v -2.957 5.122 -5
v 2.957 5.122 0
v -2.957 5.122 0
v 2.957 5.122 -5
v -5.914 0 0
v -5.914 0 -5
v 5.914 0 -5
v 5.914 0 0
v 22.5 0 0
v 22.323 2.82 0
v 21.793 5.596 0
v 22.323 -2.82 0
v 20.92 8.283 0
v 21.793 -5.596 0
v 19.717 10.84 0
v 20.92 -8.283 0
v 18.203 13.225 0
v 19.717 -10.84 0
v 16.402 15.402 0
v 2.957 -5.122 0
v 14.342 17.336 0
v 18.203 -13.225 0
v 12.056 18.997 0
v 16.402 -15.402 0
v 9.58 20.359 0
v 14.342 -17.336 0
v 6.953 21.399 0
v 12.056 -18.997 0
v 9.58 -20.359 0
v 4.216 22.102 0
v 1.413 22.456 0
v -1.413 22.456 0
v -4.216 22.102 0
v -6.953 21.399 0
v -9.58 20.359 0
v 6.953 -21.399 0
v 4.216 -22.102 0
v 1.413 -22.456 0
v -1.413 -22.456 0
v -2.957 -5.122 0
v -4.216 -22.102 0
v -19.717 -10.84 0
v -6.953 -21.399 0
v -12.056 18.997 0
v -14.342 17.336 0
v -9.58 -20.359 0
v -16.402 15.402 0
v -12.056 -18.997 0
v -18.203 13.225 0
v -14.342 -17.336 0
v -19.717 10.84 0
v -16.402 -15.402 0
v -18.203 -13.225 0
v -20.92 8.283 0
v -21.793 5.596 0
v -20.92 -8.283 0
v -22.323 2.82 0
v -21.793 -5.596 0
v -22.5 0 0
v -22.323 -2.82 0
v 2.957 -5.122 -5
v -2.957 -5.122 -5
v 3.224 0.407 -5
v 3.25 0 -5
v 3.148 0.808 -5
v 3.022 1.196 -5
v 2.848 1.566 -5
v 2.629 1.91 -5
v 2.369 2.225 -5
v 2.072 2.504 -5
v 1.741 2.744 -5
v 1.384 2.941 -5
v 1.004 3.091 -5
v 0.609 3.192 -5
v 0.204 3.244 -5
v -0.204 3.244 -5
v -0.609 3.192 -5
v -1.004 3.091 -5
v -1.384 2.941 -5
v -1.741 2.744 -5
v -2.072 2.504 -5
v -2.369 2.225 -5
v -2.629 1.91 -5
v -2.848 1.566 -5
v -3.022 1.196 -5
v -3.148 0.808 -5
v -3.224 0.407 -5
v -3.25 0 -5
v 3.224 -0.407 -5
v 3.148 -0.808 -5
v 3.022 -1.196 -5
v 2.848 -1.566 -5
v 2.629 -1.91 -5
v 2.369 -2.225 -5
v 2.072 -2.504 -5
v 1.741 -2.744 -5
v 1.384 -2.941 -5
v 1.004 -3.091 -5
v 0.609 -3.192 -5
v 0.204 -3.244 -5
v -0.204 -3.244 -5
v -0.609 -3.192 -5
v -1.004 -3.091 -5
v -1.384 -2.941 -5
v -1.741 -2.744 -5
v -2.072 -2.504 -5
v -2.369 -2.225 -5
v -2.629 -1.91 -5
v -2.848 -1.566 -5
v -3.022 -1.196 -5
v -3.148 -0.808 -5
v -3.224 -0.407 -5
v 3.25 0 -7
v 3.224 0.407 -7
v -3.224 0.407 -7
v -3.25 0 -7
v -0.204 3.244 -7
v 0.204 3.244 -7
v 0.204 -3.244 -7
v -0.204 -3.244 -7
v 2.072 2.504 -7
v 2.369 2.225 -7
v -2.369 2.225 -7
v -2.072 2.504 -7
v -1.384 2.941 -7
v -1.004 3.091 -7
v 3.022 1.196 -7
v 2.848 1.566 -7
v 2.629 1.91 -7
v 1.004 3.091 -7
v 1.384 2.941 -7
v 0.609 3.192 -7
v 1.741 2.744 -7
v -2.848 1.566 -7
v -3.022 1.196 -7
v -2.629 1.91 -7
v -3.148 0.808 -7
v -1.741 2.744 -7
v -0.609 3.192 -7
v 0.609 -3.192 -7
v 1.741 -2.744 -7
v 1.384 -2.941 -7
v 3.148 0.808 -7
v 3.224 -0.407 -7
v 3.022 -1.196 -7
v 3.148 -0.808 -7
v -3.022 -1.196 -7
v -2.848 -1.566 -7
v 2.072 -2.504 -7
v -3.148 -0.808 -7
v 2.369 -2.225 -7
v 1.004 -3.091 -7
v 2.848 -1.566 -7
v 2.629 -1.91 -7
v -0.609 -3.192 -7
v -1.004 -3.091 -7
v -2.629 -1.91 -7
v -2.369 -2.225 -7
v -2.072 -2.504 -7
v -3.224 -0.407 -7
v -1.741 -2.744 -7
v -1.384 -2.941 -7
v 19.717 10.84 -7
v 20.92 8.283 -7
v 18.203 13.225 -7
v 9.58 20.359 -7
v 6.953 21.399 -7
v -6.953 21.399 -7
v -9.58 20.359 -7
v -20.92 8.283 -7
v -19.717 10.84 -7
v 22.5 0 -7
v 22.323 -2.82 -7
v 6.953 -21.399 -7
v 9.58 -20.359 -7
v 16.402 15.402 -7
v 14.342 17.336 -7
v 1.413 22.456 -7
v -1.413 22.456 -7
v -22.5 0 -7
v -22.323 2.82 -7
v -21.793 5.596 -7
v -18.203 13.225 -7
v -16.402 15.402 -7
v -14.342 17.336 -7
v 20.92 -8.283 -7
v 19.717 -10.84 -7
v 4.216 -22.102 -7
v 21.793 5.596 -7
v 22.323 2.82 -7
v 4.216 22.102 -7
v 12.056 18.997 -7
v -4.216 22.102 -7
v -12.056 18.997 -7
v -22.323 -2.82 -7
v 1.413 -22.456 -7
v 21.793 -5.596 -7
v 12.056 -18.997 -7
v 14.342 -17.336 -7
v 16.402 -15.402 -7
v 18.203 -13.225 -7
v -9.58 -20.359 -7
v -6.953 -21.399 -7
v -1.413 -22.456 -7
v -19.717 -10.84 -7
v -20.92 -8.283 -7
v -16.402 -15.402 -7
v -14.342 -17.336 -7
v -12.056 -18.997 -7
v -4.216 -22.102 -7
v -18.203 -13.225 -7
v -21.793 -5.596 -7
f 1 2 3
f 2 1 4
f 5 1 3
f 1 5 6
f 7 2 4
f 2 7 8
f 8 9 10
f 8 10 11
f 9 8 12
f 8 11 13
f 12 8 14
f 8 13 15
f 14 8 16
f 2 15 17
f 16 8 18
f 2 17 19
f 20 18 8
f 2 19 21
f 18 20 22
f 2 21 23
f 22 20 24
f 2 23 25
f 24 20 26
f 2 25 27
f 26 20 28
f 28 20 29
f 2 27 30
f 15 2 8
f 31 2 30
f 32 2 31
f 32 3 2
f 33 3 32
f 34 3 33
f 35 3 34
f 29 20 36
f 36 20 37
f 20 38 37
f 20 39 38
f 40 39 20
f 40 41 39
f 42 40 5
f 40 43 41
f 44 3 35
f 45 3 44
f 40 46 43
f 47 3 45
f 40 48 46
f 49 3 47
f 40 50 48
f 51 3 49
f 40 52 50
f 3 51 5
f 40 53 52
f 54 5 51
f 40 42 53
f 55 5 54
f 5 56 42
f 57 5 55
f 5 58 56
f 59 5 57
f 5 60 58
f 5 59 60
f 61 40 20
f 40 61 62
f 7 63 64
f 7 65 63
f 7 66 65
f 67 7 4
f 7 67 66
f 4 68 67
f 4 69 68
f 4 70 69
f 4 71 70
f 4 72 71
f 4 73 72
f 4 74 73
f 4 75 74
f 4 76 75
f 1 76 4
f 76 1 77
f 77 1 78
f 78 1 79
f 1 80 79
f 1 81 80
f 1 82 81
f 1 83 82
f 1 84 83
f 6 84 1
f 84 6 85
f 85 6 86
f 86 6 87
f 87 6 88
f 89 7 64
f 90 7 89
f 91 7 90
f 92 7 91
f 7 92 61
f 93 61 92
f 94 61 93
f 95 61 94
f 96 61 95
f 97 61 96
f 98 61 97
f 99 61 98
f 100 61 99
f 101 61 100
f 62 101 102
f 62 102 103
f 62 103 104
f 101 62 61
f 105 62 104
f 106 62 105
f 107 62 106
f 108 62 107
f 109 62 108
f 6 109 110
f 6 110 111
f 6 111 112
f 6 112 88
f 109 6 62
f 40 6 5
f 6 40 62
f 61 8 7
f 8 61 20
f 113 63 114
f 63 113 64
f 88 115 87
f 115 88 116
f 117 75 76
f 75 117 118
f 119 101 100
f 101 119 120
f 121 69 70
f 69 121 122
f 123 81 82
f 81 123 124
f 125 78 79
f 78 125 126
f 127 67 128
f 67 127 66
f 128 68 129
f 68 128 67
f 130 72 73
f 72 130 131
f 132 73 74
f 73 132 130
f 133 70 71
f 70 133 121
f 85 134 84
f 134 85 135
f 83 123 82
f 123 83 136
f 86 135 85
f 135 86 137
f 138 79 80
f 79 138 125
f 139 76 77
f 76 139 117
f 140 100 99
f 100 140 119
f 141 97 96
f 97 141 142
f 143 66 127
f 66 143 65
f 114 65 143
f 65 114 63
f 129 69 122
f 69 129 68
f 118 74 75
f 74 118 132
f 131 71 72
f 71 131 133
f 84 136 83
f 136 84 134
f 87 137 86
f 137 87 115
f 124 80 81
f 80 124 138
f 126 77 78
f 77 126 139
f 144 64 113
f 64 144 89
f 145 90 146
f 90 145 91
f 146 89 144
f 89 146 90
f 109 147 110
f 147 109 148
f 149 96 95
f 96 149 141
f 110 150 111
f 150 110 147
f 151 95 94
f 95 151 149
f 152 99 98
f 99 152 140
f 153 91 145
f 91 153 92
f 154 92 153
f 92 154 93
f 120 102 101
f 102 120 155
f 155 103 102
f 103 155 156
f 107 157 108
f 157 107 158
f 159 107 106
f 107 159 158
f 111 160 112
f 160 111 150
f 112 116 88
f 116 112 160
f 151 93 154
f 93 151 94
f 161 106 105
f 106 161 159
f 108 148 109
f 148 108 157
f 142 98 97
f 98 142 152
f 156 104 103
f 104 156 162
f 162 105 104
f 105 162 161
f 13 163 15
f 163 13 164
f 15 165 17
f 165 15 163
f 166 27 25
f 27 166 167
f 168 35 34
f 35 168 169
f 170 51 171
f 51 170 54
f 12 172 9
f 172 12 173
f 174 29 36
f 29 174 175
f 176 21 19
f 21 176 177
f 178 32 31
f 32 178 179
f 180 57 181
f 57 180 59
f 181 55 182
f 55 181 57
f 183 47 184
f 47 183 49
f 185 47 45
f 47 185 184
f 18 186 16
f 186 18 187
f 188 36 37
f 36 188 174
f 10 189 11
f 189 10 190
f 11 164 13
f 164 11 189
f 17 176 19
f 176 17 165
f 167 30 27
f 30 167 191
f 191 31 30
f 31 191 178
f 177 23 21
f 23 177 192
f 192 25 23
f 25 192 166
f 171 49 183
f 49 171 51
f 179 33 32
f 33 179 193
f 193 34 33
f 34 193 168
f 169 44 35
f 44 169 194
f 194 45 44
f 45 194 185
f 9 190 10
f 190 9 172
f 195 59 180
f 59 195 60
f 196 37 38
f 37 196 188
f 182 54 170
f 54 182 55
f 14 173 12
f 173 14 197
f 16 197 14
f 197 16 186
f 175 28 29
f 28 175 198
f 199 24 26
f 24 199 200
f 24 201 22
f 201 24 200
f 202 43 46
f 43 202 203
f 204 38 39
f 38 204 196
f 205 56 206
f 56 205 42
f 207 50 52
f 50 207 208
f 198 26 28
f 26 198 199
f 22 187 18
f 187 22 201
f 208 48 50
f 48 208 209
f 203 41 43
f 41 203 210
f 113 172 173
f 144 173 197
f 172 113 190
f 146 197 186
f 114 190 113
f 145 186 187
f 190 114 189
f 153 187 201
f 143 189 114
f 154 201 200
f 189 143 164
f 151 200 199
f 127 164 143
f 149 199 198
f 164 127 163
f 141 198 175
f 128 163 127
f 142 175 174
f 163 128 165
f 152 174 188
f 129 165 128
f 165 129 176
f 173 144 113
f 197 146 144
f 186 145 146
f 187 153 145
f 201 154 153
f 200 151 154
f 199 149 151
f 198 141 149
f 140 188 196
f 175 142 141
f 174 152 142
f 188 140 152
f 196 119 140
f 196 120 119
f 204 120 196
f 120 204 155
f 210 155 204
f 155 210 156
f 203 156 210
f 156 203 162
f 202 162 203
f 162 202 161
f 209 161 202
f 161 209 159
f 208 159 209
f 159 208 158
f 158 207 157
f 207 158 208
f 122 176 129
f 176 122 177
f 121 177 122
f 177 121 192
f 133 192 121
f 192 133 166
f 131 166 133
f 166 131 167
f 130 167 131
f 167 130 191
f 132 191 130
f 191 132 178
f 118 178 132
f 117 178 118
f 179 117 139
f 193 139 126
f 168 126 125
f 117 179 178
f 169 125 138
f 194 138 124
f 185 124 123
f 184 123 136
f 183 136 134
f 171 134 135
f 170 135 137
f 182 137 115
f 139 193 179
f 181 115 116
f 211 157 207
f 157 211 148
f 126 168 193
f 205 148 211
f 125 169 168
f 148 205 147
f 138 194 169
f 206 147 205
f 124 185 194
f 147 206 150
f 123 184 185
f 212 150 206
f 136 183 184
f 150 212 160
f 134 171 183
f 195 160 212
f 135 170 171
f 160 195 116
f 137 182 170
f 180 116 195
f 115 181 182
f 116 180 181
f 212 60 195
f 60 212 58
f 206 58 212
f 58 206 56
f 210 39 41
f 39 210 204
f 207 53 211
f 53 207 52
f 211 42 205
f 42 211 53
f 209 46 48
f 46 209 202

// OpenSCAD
$fn = 50;


difference() {
	union() {
		translate(v = [0, 0, -7.0000000000]) {
			cylinder(h = 7.0000000000, r = 22.5000000000);
		}
	}
	union() {
		translate(v = [0, 0, 0]) {
			rotate(a = [0, 0, 0]) {
				difference() {
					union() {
						translate(v = [0, 0, -5]) {
							#linear_extrude(height = 5) {
								polygon(points = [[5.9142500000, 0.0000000000], [2.9571250000, 5.1218907443], [-2.9571250000, 5.1218907443], [-5.9142500000, 0.0000000000], [-2.9571250000, -5.1218907443], [2.9571250000, -5.1218907443]]);
							}
						}
					}
					union();
				}
			}
		}
		#translate(v = [0, 0, -100.0000000000]) {
			cylinder(h = 200, r = 3.2500000000);
		}
	}
}
